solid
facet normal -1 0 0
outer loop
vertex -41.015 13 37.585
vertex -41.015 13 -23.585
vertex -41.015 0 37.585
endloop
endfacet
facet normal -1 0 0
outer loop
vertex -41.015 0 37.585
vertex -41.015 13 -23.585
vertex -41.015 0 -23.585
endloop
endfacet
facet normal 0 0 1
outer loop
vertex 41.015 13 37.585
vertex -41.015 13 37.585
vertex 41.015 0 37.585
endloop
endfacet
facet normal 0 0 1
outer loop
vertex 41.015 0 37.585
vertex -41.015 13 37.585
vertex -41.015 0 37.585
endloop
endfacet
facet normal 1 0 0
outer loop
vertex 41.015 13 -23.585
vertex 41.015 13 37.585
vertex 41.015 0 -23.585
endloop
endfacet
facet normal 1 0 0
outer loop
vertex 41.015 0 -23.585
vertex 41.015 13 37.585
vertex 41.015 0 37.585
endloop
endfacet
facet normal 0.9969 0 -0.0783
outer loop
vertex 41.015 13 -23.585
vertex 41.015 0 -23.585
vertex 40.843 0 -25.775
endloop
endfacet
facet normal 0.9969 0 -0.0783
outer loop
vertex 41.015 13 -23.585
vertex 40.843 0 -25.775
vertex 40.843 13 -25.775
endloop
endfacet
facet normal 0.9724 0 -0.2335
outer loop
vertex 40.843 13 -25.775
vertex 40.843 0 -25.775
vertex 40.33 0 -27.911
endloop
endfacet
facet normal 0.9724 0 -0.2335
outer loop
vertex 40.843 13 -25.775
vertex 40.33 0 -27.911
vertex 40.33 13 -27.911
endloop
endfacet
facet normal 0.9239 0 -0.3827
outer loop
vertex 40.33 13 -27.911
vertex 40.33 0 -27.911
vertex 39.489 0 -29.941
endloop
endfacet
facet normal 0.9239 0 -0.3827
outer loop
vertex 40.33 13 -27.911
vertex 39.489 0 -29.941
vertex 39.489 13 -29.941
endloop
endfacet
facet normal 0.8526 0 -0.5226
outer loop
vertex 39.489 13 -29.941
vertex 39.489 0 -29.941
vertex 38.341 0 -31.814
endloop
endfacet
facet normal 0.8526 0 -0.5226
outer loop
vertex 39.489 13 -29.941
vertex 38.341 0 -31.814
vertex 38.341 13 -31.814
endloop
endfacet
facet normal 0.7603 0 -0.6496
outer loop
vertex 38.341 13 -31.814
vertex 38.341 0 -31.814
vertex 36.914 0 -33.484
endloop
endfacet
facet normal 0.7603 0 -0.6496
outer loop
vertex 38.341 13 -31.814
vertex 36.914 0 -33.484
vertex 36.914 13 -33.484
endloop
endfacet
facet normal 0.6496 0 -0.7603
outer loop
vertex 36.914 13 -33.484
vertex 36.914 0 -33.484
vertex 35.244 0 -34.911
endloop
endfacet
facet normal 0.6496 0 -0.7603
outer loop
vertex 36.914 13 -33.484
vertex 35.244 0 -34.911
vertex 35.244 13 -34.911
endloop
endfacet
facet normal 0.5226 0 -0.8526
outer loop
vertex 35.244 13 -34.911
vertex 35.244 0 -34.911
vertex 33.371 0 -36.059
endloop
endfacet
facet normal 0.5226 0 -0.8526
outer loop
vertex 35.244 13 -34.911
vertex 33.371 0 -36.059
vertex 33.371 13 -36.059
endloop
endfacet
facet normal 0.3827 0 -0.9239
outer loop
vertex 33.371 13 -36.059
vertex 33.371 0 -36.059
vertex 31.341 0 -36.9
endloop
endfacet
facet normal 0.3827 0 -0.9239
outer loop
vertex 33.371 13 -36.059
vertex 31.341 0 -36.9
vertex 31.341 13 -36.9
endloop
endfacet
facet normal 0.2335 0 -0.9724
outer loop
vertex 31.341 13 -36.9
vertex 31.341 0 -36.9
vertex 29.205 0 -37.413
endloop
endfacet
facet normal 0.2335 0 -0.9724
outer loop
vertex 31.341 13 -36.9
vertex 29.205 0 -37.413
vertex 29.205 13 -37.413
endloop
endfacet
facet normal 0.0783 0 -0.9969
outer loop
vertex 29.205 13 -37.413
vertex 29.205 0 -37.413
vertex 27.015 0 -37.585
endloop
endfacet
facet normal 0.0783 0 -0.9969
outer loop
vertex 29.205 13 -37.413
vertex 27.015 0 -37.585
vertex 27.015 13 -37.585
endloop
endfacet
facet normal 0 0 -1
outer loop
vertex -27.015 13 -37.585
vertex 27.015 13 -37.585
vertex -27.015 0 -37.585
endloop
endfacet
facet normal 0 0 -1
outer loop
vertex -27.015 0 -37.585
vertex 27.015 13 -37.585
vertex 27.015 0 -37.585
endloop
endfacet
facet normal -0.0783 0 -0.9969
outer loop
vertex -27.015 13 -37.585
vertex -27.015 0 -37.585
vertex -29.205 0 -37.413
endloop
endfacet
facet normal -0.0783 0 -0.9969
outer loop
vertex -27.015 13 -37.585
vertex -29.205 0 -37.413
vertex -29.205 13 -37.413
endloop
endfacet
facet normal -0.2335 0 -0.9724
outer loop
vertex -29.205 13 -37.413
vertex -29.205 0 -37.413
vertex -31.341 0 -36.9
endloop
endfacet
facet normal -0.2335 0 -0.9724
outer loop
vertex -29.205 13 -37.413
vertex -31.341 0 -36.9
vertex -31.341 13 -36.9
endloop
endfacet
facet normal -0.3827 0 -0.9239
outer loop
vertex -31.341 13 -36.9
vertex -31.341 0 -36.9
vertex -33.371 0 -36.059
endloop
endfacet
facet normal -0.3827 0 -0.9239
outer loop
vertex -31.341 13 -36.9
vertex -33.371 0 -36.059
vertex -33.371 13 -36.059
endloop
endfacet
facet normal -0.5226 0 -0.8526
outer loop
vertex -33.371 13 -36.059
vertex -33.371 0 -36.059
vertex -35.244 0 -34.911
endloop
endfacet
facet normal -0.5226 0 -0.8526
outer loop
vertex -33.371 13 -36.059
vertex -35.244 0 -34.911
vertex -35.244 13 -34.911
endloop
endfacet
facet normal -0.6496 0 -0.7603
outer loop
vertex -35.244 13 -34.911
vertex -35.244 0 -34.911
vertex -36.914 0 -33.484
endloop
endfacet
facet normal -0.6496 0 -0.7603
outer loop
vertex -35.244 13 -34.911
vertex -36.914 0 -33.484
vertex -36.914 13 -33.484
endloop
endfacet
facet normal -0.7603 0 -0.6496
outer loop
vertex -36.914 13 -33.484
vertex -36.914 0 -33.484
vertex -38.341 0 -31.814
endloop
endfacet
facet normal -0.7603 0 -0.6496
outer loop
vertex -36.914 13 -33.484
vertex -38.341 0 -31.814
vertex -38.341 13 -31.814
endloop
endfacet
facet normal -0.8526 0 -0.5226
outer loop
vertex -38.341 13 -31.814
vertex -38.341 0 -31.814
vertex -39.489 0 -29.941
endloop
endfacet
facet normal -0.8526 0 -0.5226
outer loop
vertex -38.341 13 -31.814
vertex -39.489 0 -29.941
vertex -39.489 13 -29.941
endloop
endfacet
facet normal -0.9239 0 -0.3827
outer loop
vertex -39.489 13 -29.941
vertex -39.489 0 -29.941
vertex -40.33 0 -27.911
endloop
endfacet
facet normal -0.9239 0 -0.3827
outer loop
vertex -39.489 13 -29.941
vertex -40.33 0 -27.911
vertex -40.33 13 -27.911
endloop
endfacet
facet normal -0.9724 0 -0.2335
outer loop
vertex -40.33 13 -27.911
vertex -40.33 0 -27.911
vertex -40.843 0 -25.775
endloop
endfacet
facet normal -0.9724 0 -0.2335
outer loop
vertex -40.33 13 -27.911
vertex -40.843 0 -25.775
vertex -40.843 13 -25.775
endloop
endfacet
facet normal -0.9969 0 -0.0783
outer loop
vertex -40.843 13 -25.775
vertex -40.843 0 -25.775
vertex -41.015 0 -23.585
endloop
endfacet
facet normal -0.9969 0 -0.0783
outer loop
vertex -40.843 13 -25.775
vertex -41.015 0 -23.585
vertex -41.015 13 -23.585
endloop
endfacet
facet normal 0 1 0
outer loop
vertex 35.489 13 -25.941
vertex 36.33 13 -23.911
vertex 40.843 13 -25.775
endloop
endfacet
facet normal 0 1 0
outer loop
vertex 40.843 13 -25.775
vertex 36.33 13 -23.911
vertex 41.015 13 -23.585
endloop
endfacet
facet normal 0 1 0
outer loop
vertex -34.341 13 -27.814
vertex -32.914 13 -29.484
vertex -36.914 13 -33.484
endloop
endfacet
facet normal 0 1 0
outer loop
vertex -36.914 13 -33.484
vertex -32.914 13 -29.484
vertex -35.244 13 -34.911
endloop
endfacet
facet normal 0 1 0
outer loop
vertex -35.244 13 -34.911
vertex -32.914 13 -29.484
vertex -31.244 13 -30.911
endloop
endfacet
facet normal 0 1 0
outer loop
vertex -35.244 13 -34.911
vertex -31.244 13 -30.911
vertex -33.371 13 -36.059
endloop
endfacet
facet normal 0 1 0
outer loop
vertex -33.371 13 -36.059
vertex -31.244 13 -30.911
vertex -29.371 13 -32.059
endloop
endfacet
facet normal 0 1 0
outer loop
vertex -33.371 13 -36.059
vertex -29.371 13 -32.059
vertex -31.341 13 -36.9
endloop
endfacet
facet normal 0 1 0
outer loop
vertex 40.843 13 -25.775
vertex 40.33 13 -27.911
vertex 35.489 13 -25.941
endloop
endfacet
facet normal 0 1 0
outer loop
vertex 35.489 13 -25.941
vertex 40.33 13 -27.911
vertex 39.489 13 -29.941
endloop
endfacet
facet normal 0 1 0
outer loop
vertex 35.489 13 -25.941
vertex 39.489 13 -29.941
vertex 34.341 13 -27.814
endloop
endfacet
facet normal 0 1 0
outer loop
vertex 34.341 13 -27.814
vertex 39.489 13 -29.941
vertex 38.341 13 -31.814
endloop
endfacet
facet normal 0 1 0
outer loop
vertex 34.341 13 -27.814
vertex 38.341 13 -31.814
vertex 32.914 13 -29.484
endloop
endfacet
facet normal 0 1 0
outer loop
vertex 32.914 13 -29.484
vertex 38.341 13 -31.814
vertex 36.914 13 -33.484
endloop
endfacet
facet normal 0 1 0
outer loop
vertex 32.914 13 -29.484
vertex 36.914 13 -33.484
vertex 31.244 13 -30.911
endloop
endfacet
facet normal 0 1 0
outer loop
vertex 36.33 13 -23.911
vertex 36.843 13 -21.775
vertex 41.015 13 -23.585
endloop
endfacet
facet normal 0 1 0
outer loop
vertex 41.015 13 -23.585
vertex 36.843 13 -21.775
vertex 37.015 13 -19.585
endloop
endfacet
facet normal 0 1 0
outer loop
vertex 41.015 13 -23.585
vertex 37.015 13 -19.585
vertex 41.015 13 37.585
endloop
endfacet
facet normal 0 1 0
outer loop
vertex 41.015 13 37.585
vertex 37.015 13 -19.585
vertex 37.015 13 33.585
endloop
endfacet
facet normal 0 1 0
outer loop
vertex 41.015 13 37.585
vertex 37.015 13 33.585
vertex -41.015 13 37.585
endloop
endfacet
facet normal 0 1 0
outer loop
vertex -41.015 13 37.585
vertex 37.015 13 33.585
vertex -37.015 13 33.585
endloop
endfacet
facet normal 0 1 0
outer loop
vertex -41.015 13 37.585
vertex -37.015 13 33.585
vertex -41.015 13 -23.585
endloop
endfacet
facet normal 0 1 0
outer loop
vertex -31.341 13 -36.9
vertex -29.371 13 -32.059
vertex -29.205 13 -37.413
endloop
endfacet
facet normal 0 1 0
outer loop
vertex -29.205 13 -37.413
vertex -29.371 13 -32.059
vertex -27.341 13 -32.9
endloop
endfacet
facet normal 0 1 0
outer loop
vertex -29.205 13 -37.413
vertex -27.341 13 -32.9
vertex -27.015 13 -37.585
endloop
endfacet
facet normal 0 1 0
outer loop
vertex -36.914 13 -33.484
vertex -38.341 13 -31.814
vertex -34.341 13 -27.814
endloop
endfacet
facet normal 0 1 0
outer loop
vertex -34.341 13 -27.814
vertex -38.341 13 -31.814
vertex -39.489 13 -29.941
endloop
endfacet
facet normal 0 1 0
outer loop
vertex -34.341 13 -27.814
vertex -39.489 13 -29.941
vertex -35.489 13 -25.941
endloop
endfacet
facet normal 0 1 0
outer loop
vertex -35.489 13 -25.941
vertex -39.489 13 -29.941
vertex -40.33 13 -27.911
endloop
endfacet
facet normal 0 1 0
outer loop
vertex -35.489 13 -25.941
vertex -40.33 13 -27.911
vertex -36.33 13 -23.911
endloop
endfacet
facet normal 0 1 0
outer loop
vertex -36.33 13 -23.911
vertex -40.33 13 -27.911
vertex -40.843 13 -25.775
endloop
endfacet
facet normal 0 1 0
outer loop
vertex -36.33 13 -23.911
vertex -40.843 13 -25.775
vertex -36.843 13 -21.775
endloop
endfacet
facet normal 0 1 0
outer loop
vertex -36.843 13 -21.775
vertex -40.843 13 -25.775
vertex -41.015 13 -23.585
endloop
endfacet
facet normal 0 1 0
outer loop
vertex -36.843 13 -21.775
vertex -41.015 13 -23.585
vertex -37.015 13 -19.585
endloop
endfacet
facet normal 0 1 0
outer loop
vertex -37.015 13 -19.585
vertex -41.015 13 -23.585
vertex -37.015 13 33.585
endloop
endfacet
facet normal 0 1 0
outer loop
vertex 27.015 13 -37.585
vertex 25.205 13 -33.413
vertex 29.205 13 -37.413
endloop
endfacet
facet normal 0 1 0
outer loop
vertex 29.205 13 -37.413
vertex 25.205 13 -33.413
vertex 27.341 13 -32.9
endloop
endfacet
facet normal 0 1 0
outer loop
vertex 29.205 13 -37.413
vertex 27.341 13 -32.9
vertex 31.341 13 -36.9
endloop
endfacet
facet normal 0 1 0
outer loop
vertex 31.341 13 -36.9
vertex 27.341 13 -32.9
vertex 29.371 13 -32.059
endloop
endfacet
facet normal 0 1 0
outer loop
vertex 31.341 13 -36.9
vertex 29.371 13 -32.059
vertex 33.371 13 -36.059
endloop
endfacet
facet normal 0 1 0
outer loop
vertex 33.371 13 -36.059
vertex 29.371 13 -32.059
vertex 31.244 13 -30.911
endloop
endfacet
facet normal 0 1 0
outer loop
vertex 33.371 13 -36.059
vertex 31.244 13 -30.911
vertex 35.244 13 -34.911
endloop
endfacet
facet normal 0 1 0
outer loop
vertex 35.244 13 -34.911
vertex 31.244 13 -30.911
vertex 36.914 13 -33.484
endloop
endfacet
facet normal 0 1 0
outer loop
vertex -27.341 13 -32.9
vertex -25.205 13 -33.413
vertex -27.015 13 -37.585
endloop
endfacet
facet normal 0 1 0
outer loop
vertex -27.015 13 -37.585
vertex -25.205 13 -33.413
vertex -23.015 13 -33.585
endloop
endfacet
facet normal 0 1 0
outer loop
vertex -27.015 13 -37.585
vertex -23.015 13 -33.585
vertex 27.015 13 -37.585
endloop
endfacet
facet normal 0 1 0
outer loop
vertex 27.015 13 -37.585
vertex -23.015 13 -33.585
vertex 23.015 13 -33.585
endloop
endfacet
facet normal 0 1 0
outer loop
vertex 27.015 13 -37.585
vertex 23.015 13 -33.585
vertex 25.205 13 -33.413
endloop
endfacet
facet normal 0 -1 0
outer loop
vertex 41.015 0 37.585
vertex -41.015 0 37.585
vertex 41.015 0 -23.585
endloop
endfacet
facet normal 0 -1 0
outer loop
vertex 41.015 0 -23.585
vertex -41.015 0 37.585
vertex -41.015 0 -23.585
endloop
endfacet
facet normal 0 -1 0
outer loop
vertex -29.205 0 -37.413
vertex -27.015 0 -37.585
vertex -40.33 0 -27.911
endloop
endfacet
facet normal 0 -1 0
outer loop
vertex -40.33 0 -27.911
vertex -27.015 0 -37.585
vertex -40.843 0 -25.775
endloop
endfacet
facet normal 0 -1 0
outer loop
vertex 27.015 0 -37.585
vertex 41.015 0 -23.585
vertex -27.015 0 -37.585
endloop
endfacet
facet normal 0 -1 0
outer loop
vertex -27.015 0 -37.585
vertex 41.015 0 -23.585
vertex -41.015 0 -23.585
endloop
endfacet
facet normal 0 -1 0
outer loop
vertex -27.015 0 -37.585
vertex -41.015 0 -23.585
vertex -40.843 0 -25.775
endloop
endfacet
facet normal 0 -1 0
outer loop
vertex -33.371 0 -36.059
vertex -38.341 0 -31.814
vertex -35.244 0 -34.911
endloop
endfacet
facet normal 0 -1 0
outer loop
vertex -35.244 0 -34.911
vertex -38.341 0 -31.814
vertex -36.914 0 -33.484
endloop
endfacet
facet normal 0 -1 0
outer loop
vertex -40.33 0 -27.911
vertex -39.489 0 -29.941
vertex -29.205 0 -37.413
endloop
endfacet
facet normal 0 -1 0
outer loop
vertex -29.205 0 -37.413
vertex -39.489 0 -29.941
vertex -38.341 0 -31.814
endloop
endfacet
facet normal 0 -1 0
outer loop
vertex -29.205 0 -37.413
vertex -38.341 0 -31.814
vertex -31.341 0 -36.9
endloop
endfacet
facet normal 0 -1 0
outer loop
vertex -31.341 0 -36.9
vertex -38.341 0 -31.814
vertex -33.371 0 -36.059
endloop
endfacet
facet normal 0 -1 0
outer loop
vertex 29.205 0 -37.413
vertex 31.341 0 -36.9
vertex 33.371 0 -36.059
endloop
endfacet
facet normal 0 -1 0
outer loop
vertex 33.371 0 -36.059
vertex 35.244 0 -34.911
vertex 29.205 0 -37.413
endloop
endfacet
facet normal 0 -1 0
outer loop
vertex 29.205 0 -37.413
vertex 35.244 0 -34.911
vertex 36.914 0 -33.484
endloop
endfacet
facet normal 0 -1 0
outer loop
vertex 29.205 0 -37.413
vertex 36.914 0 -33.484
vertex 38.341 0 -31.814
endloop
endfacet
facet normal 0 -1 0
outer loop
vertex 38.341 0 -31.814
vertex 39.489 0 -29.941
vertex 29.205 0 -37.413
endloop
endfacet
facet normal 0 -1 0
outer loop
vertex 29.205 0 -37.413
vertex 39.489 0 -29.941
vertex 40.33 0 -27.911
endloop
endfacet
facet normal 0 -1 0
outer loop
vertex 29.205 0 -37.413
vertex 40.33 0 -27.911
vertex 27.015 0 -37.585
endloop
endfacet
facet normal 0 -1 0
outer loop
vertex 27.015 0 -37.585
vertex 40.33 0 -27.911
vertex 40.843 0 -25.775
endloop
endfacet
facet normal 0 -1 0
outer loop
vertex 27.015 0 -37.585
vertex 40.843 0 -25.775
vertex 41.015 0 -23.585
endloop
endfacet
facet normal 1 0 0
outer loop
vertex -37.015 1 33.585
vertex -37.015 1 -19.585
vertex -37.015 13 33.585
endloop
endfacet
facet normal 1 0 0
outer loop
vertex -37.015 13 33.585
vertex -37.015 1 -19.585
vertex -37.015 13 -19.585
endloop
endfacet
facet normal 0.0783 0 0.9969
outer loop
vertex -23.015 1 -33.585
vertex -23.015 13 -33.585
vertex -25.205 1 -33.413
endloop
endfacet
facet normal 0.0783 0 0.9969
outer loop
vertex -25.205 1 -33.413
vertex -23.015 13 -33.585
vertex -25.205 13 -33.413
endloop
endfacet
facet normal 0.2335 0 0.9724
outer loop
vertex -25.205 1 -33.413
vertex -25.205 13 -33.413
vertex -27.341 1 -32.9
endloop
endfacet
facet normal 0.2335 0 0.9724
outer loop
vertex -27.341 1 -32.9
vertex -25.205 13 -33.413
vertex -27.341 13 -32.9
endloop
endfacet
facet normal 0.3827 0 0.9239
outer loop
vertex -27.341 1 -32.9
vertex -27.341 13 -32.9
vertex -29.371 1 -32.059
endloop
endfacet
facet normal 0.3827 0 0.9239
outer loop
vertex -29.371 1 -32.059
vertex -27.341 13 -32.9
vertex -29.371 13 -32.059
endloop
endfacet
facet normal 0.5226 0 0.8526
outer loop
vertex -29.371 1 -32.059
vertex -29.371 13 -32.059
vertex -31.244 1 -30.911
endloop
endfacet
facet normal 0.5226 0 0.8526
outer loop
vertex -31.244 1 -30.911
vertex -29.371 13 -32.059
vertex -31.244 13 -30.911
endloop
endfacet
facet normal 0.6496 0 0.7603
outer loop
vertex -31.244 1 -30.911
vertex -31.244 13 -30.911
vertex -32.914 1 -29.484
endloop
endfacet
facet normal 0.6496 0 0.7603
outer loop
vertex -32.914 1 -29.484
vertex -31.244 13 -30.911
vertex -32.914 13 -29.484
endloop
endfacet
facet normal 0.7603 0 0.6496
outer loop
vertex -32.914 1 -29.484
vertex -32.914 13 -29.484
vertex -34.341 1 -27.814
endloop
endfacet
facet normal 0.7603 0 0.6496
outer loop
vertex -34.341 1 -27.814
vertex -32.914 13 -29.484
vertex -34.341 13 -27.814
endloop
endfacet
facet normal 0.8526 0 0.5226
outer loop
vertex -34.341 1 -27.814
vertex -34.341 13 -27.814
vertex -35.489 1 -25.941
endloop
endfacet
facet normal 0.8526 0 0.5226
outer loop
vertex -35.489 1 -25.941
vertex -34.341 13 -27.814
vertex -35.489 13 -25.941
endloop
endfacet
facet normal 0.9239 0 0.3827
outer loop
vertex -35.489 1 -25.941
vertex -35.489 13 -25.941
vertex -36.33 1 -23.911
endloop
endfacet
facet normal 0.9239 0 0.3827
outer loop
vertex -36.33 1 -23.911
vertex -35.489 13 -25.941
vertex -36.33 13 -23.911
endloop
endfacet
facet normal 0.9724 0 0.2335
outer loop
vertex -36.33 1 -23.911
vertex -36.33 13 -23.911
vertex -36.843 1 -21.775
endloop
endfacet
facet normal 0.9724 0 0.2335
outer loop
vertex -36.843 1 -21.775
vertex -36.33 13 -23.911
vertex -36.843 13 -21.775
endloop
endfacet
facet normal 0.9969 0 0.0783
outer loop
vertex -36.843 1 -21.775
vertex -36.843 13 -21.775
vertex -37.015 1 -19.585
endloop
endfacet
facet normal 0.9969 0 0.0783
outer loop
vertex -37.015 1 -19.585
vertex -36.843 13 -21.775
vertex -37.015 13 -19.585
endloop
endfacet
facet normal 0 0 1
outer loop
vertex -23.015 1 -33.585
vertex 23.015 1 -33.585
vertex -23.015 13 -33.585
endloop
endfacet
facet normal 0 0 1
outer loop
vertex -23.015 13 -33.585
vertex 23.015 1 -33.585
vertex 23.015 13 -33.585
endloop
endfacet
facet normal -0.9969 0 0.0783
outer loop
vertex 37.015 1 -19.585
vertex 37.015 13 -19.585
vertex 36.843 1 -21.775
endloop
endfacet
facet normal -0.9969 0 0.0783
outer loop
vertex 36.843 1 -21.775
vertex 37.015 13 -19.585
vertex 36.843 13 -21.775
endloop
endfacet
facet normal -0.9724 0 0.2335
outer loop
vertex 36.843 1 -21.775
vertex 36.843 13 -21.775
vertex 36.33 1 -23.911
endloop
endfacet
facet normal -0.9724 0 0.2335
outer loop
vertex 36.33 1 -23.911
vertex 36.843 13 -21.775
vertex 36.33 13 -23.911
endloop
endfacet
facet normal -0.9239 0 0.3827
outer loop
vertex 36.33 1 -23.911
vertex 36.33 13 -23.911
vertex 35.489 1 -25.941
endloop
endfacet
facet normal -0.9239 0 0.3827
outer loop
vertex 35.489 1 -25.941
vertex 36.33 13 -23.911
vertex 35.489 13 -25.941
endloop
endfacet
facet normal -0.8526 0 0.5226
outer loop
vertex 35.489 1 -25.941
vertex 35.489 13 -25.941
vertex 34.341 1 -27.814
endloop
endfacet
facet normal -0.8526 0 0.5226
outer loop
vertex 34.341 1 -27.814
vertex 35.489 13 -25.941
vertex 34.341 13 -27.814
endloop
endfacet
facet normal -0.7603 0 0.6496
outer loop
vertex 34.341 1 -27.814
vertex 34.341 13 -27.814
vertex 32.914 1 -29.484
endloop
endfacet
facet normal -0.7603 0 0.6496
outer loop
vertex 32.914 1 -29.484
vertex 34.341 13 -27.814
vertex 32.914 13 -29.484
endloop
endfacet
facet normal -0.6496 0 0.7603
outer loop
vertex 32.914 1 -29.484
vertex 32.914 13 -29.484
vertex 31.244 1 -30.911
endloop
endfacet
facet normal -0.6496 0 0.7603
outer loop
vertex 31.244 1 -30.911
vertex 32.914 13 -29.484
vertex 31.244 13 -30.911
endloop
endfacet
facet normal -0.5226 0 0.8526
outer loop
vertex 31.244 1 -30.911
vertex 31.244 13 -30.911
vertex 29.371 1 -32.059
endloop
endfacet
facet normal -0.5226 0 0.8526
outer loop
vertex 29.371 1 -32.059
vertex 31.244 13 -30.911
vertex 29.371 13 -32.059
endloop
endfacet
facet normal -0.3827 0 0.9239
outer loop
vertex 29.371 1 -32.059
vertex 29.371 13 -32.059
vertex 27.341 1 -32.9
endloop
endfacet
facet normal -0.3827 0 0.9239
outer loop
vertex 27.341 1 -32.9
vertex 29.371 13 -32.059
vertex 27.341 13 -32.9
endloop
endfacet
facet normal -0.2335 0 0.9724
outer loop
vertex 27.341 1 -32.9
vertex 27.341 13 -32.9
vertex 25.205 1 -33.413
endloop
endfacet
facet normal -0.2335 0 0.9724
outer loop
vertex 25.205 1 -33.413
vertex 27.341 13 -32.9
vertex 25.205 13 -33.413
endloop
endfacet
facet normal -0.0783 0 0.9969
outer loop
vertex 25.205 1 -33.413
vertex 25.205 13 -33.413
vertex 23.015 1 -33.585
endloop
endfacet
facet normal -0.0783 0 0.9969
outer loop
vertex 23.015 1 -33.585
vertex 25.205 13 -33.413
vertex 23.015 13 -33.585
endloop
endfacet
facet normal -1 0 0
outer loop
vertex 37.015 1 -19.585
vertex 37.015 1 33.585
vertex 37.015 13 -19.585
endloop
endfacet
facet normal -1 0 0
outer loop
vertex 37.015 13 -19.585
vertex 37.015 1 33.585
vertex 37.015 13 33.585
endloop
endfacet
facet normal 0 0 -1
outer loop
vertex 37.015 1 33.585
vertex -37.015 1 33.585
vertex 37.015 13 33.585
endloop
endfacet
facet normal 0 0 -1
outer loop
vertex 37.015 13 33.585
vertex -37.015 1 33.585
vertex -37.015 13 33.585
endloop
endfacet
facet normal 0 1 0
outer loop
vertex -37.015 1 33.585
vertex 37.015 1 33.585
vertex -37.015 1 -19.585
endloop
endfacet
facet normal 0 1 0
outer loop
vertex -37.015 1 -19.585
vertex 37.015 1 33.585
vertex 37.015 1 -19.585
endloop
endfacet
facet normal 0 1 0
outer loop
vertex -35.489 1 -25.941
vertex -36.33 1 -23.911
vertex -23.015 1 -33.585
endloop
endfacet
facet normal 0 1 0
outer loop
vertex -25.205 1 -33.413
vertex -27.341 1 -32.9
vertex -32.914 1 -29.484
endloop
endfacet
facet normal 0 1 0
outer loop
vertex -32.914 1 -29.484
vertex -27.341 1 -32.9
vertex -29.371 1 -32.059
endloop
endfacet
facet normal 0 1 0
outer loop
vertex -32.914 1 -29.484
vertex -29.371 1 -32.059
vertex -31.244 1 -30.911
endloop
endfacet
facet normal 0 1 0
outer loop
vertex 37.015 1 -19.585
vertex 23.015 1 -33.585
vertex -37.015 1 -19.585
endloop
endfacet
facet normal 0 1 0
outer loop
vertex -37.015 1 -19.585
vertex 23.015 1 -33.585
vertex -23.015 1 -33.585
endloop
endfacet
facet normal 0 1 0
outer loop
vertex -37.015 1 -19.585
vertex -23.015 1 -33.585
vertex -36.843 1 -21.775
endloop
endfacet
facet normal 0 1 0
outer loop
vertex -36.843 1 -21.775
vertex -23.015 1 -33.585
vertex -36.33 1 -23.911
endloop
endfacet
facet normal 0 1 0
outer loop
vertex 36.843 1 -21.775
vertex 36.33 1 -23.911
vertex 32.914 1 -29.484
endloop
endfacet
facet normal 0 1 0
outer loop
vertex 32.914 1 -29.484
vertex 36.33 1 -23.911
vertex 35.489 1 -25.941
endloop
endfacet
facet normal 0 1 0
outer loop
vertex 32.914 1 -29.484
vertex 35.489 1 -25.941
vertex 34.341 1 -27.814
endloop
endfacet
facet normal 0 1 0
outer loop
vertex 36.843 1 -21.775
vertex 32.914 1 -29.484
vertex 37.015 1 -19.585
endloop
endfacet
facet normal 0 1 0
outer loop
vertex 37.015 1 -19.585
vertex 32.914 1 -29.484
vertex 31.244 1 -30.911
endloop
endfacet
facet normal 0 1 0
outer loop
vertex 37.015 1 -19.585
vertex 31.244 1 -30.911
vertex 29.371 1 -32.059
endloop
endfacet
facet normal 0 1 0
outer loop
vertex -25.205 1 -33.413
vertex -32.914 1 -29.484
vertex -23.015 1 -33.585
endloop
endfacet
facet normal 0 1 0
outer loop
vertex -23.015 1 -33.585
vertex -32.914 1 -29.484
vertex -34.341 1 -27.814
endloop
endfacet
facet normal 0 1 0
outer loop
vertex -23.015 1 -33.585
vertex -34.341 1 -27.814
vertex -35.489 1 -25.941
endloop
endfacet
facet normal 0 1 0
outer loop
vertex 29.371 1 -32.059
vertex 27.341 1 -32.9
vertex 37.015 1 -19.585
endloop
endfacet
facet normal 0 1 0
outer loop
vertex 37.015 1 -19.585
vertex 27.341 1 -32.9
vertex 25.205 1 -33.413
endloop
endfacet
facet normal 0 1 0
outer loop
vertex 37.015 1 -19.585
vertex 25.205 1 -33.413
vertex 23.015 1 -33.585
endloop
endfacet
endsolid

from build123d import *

# Parameters (mm, degrees)
BOSS_EXTRUDE1_DEPTH = 13
CUT_EXTRUDE1_DEPTH  = 12


with BuildPart() as part:
    # Sketch3 → Boss-Extrude1 (new body)
    with BuildSketch(Plane(origin=(0, 0, 0), x_dir=(1, 0, 0), z_dir=(0, 1, 0))):
        with BuildLine():
            Line((-41.015, -37.585), (41.015, -37.585))
            Line((41.015, -37.585), (41.015, 23.585))
            ThreePointArc((41.015, 23.585), (36.914494937, 33.484494937), (27.015, 37.585))
            Line((27.015, 37.585), (-27.015, 37.585))
            ThreePointArc((-27.015, 37.585), (-36.914494937, 33.484494937), (-41.015, 23.585))
            Line((-41.015, 23.585), (-41.015, -37.585))
        make_face()
    extrude(amount=BOSS_EXTRUDE1_DEPTH)

    # Sketch4 → Cut-Extrude1 (cut)
    with BuildSketch(Plane(origin=(0, 13, 0), x_dir=(1, 0, 0), z_dir=(0, 1, 0))):
        with BuildLine():
            Line((-37.015, -33.585), (37.015, -33.585))
            Line((37.015, -33.585), (37.015, 19.585))
            ThreePointArc((37.015, 19.585), (32.914494937, 29.484494937), (23.015, 33.585))
            Line((23.015, 33.585), (-23.015, 33.585))
            ThreePointArc((-23.015, 33.585), (-32.914494937, 29.484494937), (-37.015, 19.585))
            Line((-37.015, 19.585), (-37.015, -33.585))
        make_face()
    extrude(amount=-CUT_EXTRUDE1_DEPTH, mode=Mode.SUBTRACT)


solid = part.part
